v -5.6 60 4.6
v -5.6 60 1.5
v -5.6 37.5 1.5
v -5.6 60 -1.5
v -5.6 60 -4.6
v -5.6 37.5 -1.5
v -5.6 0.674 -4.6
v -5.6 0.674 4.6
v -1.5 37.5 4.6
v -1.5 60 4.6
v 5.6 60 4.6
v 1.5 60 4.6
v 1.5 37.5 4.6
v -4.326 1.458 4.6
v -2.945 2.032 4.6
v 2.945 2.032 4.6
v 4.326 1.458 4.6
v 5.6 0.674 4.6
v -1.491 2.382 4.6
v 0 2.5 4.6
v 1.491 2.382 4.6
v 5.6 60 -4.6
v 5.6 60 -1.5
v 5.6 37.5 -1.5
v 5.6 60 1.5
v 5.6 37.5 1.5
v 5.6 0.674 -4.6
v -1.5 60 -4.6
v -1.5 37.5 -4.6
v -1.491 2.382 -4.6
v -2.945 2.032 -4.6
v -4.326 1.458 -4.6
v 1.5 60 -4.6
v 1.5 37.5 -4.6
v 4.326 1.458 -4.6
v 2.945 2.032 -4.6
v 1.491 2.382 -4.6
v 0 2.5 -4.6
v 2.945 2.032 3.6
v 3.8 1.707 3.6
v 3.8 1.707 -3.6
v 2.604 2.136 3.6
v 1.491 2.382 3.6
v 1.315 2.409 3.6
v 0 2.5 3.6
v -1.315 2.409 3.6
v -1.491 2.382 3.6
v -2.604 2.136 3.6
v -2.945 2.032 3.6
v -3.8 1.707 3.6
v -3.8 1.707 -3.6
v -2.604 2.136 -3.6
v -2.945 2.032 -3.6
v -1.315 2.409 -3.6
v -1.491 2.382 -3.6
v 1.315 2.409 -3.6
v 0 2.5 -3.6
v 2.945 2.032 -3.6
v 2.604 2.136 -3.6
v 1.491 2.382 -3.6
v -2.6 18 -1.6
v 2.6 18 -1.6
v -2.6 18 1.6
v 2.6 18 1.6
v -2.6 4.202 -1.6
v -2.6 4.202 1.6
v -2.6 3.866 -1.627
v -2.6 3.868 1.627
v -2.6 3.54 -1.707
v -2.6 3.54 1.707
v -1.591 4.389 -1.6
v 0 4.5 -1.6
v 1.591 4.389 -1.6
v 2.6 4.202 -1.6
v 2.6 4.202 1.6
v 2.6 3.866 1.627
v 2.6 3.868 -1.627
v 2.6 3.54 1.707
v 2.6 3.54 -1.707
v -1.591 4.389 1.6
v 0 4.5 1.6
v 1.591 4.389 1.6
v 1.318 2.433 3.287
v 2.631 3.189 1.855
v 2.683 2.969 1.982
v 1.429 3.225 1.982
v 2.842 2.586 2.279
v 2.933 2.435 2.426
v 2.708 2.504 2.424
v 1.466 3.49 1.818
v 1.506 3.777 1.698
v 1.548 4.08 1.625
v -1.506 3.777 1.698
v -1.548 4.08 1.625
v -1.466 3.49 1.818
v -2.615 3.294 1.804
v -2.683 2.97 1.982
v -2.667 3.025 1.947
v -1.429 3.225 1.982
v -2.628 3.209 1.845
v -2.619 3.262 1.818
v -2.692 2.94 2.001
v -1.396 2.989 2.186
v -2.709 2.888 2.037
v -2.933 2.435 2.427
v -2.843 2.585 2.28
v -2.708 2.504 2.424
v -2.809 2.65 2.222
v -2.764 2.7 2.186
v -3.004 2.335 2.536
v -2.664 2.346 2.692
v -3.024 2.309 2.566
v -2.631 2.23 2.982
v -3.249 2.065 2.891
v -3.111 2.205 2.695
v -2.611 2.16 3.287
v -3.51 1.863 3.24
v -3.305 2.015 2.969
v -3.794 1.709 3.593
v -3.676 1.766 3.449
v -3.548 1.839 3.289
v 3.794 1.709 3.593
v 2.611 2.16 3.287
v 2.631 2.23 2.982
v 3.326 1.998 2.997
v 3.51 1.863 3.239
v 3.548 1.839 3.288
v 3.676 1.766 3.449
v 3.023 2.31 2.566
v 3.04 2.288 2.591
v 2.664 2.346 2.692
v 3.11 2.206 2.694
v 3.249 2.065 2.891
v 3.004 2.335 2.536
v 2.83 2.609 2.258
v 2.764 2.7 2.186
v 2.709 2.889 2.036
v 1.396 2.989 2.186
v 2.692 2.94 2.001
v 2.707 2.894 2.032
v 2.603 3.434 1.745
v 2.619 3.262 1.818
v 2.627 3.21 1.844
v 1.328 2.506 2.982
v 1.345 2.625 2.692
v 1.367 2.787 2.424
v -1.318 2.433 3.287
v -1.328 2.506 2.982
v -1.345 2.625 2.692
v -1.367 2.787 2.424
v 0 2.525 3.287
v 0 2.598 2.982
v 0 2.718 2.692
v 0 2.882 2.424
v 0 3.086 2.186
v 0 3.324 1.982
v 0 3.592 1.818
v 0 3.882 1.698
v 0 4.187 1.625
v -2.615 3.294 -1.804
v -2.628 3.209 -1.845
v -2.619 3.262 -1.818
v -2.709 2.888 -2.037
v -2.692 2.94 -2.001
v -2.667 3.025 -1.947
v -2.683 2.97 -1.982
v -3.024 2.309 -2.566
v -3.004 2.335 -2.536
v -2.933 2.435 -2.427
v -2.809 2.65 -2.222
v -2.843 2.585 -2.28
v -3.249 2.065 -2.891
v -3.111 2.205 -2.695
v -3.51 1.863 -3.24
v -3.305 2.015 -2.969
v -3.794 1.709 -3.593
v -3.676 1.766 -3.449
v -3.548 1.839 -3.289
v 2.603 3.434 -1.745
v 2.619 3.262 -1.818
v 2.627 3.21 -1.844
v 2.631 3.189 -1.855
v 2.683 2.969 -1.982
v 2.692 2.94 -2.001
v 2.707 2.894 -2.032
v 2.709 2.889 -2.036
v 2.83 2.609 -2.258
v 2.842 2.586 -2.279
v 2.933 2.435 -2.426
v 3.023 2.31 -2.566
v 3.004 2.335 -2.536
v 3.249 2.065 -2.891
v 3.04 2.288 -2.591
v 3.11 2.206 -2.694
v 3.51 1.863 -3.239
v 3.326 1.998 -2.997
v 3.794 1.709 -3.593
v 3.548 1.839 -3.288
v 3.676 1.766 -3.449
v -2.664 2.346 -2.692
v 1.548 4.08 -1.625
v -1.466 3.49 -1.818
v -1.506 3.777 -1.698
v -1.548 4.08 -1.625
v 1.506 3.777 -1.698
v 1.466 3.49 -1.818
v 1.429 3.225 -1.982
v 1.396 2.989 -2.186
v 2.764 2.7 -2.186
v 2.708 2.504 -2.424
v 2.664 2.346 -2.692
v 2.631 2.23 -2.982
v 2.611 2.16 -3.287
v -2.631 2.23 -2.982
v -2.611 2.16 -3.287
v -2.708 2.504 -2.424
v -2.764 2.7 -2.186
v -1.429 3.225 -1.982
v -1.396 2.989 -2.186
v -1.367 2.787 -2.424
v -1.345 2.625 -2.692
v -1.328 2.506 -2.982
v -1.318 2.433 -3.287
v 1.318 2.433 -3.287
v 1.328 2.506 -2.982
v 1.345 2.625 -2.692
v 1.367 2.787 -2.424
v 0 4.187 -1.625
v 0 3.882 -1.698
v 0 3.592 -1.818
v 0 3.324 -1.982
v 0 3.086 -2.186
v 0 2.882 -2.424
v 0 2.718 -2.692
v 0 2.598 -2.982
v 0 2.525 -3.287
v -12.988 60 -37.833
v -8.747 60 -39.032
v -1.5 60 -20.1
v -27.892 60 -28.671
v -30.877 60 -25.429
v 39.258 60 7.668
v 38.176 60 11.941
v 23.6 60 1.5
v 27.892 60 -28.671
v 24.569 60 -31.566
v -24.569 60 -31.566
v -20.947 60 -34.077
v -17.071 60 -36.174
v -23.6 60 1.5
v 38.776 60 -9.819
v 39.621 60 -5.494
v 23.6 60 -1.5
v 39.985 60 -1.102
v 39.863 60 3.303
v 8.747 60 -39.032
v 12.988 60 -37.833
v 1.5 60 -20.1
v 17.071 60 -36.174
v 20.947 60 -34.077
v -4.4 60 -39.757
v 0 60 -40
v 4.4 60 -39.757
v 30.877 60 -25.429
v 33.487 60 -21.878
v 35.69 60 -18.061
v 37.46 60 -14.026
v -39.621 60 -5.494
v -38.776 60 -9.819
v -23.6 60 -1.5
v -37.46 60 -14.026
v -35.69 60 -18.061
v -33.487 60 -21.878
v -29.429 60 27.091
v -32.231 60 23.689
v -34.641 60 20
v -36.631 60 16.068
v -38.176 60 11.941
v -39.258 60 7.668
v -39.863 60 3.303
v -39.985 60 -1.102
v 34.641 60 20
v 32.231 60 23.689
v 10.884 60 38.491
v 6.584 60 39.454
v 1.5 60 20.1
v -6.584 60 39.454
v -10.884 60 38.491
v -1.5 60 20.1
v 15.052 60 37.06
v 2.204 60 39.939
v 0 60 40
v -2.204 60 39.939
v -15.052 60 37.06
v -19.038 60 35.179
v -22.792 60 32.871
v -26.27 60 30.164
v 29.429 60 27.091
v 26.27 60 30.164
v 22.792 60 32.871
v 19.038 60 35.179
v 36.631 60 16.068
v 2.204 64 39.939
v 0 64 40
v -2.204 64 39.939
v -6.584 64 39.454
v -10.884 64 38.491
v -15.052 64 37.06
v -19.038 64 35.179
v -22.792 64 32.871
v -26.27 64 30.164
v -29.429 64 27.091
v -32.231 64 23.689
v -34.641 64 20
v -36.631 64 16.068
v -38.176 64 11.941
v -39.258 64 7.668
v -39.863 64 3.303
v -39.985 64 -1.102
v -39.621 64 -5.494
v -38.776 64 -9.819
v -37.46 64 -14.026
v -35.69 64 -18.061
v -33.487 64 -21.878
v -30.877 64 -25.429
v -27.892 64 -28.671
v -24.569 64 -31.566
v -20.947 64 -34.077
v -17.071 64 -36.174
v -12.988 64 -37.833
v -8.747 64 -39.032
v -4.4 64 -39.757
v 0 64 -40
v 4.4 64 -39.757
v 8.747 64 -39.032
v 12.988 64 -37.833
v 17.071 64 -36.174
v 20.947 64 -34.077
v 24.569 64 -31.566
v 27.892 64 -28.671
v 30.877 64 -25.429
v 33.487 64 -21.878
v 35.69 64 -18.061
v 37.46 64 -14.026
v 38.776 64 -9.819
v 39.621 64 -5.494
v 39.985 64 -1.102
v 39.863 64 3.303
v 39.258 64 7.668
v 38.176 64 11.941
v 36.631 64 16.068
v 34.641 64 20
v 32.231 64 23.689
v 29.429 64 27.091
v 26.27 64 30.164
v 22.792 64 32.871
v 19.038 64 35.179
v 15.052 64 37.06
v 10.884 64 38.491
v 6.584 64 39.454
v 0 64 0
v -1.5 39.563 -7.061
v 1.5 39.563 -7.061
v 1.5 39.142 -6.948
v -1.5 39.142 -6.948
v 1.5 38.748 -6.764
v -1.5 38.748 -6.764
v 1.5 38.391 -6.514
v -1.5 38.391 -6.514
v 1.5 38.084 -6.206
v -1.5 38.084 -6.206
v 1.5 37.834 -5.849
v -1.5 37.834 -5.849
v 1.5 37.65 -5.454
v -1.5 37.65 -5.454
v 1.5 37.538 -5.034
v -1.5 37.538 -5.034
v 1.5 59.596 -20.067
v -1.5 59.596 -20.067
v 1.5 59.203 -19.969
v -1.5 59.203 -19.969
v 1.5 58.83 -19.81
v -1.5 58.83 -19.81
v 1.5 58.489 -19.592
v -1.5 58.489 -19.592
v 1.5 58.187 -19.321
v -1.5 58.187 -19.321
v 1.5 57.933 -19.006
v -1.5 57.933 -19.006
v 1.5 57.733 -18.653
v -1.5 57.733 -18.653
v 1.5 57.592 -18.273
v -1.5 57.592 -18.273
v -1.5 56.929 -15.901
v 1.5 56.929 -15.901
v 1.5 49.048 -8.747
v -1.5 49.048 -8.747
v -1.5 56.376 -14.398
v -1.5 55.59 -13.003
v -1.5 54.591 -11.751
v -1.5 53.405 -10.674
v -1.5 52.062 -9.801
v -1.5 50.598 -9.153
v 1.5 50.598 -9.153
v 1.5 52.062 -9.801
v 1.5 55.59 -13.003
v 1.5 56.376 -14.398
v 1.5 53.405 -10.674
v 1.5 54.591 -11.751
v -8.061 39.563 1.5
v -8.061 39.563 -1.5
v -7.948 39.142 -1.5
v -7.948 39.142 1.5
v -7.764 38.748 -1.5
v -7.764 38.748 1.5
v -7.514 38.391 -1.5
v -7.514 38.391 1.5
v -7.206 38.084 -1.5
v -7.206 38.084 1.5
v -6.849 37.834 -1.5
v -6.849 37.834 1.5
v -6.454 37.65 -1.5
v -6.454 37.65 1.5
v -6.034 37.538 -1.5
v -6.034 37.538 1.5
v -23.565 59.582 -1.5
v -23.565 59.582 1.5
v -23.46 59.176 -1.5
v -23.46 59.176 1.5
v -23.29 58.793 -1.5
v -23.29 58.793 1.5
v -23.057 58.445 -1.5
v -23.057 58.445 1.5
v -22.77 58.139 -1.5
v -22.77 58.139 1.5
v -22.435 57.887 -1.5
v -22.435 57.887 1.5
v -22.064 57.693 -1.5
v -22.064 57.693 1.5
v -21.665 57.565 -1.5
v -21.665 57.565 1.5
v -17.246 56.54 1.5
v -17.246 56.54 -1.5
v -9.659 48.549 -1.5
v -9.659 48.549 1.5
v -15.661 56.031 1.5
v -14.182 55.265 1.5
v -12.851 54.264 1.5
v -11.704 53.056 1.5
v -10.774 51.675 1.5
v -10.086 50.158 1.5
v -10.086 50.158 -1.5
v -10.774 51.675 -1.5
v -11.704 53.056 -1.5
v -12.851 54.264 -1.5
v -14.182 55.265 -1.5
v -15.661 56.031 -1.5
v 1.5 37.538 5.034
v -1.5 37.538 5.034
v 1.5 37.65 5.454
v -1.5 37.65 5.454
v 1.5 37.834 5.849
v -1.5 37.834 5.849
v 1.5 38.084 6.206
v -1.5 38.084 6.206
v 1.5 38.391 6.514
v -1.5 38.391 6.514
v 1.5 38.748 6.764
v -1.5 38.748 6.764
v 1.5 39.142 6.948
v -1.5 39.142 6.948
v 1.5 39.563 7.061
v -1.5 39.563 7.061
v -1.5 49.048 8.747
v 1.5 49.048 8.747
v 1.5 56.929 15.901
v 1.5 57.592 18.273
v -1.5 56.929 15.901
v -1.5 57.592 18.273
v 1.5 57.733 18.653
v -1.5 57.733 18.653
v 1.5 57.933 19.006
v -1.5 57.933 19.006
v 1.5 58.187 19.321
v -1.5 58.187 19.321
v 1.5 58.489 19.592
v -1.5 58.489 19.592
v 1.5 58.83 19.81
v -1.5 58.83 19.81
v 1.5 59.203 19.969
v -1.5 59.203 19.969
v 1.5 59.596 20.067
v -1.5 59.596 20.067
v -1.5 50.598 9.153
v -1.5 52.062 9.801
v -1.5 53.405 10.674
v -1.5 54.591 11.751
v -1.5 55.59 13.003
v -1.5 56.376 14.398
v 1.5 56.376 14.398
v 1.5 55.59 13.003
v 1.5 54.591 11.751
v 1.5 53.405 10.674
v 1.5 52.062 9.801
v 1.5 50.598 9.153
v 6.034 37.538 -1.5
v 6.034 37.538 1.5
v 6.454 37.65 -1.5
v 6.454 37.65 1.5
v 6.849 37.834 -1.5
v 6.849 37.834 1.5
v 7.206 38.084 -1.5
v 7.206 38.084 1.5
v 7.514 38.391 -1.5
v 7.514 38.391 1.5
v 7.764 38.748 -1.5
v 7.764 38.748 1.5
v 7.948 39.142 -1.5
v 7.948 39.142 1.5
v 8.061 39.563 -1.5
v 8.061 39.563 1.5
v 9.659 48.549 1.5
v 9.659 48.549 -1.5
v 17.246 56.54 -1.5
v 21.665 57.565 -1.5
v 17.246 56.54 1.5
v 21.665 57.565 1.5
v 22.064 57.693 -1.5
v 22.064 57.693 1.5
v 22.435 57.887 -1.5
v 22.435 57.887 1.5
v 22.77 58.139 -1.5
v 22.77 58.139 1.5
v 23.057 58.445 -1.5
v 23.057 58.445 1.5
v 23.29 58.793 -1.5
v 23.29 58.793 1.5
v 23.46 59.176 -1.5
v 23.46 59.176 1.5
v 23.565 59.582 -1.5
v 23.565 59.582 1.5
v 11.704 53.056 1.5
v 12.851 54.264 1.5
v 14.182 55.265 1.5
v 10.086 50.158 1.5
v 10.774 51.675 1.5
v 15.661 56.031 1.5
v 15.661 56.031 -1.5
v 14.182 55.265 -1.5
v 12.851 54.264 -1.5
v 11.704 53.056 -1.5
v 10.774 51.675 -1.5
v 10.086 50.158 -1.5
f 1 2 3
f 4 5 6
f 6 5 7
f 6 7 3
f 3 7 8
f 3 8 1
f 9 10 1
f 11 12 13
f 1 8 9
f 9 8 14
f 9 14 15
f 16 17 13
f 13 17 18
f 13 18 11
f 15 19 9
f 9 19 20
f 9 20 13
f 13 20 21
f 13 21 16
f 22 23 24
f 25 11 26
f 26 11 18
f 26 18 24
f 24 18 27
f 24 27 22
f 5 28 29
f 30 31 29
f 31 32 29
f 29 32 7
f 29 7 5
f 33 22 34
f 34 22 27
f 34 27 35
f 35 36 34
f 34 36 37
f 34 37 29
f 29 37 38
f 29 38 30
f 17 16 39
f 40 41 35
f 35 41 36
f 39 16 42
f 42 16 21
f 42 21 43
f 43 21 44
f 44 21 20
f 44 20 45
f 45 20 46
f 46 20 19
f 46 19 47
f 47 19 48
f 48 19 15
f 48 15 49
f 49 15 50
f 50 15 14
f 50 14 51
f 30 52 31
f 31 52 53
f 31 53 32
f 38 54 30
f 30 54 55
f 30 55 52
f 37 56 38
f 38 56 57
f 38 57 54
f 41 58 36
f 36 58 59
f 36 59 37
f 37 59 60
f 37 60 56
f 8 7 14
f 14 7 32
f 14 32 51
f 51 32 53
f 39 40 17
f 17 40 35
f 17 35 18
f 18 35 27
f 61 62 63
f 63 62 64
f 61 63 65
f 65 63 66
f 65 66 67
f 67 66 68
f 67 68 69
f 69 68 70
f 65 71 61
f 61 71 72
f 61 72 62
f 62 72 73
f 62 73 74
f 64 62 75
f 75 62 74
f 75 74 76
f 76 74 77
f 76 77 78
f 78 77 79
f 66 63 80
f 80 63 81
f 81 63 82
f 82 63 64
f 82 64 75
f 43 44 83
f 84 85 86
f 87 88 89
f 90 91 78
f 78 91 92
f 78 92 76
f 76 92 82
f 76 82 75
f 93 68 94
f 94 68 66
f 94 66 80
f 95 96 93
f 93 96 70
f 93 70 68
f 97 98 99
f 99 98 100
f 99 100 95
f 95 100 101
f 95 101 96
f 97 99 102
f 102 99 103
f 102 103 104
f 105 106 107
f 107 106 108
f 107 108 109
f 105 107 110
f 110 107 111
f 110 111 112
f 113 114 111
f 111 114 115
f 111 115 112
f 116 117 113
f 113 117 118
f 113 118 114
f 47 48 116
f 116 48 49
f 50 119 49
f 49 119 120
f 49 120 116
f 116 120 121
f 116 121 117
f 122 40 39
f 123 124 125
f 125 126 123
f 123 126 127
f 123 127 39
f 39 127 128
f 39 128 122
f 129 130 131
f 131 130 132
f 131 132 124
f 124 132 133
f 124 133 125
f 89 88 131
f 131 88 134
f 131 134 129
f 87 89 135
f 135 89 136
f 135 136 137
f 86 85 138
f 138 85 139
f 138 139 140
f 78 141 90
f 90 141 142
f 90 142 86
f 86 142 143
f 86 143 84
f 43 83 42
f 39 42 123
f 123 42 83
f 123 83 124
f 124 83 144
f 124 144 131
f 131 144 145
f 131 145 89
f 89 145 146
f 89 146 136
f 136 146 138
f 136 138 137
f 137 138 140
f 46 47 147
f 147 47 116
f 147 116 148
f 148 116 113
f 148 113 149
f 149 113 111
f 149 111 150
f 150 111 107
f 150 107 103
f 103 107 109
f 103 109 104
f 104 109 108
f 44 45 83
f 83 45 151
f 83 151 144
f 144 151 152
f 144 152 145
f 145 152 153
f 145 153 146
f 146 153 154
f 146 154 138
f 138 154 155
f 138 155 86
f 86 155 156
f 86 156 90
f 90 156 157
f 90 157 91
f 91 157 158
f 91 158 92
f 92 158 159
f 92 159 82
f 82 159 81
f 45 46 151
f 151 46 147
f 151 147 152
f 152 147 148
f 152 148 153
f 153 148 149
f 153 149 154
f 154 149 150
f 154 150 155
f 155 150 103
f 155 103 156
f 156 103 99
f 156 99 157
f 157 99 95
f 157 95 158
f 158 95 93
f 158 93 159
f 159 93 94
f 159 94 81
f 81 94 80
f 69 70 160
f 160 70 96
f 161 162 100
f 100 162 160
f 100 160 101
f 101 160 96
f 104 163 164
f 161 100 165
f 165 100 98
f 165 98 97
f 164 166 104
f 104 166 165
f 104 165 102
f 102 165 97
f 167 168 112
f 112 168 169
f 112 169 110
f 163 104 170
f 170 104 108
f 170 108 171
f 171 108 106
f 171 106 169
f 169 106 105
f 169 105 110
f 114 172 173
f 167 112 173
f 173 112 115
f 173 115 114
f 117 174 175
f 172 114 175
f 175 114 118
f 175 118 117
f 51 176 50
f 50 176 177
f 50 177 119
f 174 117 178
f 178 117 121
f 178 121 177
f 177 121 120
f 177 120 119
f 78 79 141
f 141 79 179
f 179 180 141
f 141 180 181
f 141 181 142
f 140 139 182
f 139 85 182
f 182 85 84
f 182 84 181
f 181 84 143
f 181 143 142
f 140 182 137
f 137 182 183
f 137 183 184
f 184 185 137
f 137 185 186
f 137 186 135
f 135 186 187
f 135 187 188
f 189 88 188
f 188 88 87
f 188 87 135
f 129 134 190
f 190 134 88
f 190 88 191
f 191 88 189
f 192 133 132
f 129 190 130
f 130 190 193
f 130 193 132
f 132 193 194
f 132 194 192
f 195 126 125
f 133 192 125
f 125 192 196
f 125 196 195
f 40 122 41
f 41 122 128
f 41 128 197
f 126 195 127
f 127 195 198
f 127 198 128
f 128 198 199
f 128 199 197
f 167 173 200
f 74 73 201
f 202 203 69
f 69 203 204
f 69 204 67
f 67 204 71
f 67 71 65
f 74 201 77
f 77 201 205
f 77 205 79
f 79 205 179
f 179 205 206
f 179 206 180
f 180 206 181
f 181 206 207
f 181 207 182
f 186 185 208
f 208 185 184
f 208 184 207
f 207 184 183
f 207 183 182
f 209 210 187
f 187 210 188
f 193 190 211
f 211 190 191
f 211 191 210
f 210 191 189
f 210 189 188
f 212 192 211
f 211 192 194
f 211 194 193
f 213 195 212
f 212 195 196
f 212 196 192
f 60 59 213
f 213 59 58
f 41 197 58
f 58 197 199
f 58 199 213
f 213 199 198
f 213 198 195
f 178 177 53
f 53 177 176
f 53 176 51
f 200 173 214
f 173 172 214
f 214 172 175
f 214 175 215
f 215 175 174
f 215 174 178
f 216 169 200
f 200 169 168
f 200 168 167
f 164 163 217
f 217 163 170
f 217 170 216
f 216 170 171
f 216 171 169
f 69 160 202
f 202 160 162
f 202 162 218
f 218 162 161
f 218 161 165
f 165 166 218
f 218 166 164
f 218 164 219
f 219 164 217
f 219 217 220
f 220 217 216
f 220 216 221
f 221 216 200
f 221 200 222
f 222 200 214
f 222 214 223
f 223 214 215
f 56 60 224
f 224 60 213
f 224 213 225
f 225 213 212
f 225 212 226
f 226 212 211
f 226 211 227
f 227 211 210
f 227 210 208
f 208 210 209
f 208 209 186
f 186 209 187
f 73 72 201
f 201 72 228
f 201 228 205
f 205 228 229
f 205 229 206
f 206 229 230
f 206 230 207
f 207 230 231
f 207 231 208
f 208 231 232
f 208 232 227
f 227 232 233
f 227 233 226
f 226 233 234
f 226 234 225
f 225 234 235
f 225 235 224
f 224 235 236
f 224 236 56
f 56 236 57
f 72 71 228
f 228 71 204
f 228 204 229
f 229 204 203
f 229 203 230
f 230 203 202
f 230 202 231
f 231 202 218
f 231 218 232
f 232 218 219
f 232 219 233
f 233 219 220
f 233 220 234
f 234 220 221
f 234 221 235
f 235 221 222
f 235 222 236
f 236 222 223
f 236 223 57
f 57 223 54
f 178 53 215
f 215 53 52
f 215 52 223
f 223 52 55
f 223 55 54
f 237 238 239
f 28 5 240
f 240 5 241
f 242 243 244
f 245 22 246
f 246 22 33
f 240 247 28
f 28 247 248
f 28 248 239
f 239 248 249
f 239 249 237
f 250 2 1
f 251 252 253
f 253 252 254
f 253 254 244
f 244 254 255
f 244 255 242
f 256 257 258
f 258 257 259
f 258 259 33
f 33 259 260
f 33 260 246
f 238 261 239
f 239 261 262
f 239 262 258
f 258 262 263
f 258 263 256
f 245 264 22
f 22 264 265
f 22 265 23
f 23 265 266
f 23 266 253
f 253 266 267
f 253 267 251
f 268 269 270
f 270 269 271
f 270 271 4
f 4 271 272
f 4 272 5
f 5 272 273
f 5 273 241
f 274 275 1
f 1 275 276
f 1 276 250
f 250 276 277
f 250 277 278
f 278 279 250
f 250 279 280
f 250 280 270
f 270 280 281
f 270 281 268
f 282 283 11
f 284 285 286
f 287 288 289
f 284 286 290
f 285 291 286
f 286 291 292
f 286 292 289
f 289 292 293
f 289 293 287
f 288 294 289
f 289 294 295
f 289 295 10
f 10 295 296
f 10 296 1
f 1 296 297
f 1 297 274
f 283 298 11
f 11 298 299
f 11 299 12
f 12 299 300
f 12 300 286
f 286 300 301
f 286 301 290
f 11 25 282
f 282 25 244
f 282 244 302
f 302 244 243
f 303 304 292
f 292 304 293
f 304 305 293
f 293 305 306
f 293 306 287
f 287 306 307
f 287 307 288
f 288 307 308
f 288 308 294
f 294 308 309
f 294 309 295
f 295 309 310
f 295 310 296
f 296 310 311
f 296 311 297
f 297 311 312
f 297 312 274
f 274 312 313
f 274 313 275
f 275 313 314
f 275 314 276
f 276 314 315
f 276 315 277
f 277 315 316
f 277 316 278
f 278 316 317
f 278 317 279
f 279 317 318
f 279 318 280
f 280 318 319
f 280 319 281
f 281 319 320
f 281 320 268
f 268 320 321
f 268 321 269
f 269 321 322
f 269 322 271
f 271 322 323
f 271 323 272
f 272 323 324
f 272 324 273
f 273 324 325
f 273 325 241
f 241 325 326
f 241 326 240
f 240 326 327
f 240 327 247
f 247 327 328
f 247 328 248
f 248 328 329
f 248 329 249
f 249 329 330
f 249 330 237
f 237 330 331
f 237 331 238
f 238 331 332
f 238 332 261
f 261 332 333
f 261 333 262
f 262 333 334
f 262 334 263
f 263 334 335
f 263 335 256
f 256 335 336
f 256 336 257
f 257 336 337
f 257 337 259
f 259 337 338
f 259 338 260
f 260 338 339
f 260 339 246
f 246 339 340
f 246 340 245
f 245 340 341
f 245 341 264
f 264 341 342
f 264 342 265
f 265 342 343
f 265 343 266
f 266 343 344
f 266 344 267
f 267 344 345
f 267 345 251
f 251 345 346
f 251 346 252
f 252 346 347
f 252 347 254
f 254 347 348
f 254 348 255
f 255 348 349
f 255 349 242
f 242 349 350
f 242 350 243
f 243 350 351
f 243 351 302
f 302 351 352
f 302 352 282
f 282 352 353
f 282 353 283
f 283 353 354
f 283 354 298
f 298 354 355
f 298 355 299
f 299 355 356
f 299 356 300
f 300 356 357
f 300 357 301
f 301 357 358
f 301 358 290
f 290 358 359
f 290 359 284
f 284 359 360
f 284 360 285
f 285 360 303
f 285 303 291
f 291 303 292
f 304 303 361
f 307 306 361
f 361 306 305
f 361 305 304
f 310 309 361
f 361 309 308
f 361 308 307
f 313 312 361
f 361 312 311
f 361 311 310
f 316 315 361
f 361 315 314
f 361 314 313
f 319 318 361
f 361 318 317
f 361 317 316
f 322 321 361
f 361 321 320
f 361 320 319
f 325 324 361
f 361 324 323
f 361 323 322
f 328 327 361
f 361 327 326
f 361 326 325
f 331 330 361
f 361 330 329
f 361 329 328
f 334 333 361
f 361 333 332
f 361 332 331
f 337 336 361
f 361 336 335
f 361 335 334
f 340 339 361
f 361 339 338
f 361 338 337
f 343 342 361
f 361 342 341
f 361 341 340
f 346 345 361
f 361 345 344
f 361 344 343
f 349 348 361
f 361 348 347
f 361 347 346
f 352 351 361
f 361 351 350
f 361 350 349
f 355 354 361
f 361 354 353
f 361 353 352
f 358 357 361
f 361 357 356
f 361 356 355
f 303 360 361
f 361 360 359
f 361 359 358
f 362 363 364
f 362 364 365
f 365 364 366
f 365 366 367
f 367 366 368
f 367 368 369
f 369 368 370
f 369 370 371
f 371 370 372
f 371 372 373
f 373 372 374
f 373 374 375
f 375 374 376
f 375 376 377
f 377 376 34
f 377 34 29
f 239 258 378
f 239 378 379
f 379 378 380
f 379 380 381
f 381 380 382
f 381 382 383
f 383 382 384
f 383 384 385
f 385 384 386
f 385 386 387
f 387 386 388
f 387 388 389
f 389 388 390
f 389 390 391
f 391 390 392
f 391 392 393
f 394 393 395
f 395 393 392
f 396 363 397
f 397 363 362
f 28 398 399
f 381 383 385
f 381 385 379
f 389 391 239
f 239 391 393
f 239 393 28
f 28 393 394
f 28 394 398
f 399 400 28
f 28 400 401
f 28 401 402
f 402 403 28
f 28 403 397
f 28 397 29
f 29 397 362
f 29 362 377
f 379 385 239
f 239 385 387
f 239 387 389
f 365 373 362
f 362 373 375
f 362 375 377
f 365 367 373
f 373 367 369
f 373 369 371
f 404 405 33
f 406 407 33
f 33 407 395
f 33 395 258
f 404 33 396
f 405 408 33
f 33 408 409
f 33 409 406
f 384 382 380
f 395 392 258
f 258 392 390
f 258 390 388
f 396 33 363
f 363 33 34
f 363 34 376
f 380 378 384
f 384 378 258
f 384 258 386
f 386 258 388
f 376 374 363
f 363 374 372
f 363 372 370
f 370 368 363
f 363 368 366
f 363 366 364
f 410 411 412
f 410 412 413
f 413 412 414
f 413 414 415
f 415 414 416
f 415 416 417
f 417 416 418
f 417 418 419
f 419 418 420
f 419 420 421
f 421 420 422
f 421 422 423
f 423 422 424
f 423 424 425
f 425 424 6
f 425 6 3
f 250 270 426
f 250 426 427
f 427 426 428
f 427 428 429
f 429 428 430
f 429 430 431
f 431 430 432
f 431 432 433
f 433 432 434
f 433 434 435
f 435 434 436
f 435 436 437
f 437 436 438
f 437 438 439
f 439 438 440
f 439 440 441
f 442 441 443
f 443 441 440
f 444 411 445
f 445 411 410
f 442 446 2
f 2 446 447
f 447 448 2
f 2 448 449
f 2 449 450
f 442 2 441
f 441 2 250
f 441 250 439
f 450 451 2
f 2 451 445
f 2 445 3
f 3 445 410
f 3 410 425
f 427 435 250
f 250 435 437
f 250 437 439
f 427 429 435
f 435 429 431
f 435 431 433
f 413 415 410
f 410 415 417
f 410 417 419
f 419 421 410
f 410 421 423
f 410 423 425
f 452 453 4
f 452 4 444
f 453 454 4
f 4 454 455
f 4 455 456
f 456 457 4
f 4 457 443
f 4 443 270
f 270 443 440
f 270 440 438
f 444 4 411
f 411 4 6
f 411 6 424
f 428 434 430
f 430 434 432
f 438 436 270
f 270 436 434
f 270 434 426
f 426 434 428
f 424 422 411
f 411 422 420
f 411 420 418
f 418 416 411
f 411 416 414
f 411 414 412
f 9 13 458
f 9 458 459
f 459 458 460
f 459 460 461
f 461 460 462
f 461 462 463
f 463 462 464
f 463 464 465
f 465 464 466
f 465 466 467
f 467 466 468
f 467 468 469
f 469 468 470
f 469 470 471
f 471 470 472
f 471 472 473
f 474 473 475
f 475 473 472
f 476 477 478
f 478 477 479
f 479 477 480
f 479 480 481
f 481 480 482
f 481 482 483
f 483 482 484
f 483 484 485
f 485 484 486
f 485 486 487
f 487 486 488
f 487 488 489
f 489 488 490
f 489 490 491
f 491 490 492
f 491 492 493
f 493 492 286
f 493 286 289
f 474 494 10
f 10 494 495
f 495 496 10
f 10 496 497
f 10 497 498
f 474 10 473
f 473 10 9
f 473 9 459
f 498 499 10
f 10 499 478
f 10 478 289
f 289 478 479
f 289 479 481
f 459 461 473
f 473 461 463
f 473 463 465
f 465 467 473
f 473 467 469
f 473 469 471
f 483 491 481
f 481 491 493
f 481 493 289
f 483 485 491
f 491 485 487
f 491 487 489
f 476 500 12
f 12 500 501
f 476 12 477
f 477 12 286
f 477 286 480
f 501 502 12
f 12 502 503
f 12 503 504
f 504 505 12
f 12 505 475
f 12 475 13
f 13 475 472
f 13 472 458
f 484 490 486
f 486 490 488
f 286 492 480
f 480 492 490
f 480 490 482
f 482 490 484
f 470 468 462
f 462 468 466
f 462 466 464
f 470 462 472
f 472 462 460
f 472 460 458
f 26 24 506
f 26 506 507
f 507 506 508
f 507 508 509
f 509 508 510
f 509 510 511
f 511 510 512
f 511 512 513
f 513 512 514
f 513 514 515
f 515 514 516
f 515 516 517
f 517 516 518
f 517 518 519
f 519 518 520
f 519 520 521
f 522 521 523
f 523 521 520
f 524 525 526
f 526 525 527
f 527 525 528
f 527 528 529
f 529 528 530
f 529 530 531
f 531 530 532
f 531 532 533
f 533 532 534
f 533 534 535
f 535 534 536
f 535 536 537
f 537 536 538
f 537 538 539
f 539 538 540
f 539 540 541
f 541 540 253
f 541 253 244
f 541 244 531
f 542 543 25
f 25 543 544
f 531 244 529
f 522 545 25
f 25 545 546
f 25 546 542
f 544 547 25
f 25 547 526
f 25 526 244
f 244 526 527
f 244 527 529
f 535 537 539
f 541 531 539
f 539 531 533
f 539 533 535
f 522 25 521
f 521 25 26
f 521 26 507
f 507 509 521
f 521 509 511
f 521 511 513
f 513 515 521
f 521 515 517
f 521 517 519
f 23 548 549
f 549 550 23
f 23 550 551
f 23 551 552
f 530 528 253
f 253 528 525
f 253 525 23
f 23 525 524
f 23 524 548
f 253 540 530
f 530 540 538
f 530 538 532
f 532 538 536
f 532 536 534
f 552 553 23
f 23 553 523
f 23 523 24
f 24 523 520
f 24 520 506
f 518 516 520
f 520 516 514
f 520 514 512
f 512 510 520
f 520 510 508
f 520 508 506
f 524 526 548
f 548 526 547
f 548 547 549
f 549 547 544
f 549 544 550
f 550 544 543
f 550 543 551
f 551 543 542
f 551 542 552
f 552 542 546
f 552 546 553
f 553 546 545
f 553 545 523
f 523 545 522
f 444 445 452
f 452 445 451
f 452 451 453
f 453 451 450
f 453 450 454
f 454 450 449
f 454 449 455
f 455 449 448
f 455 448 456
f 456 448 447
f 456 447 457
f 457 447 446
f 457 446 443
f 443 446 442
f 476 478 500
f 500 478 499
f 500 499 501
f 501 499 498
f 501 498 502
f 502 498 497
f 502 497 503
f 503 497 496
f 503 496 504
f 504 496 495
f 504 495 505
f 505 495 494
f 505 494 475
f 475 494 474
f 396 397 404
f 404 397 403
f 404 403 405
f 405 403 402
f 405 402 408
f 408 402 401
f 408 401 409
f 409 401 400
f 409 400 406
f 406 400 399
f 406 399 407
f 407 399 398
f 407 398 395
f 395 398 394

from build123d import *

# Parameters (mm, degrees)
SKETCH_1_W          = 11.2
SKETCH_1_H          = 9.2
EXTRUDE_1_DEPTH     = 60
SKETCH_1_12_W       = 5.2
SKETCH_1_12_H       = 3.2
CUT_EXTRUDE_1_DEPTH = 18
SKETCH_2_R          = 9.5
CUT_EXTRUDE_2_DEPTH = 61.959002617
FILLET_1_R          = 2
SKETCH_3_R          = 40
EXTRUDE_2_DEPTH     = 4
EXTRUDE_3_DEPTH     = 1.5
EXTRUDE_4_DEPTH     = 1.5
FILLET_2_R          = 10


with BuildPart() as part:
    # 草图1 → 凸台-拉伸1 (new body)
    with BuildSketch(Plane(origin=(0, 0, 0), x_dir=(1, 0, 0), z_dir=(0, 1, 0))):
        Rectangle(SKETCH_1_W, SKETCH_1_H)
    extrude(amount=EXTRUDE_1_DEPTH)

    # 草图1<12> → 切除-拉伸1 (cut)
    with BuildSketch(Plane(origin=(0, 0, 0), x_dir=(1, 0, 0), z_dir=(0, 1, 0))):
        Rectangle(SKETCH_1_12_W, SKETCH_1_12_H)
    extrude(amount=CUT_EXTRUDE_1_DEPTH, mode=Mode.SUBTRACT)

    # 草图2 → 切除-拉伸2 (cut, through all)
    with BuildSketch(Plane(origin=(0, 0, -4.6), x_dir=(-1, 0, 0), z_dir=(0, 0, -1))):
        with Locations((0, -7)):
            Circle(SKETCH_2_R)
    extrude(amount=-CUT_EXTRUDE_2_DEPTH, mode=Mode.SUBTRACT)

    # 圆角1
    fillet_1_edges = [part.edges().sort_by_distance(p)[0] for p in [
        (0, 2.5, -1.6),
        (-2.6, 2.137286249, 0),
        (2.6, 2.137286249, 0),
        (0, 2.5, 1.6),
    ]]
    fillet(fillet_1_edges, radius=FILLET_1_R)

    # 草图3 → 凸台-拉伸2 (add)
    with BuildSketch(Plane(origin=(0, 60, 0), x_dir=(1, 0, 0), z_dir=(0, 1, 0))):
        Circle(SKETCH_3_R)
    extrude(amount=EXTRUDE_2_DEPTH)

    # 草图4 → 凸台-拉伸3 (add, symmetric)
    with BuildSketch(Plane.ZY):
        with BuildLine():
            ThreePointArc((-20.1, 60), (-19.591568767, 58.488823688), (-18.273076923, 57.592310764))
            Line((-18.273076923, 57.592310764), (-9.847432928, 55.236896099))
            Line((-9.847432928, 55.236896099), (-7.061421083, 39.5625))
            ThreePointArc((-7.061421083, 39.5625), (-6.205654072, 38.083786285), (-4.6, 37.5))
            Line((-4.6, 37.5), (-4.6, 60))
            Line((-4.6, 60), (-20.1, 60))
        make_face()
    extrude_3 = extrude(amount=EXTRUDE_3_DEPTH, both=True)

    # 草图5 → 凸台-拉伸4 (add, symmetric)
    with BuildSketch(Plane.XY):
        with BuildLine():
            ThreePointArc((-23.6, 60), (-23.057203403, 58.444572458), (-21.664516129, 57.564569537))
            Line((-21.664516129, 57.564569537), (-10.81412887, 55.04952396))
            Line((-10.81412887, 55.04952396), (-8.061421083, 39.5625))
            ThreePointArc((-8.061421083, 39.5625), (-7.205654072, 38.083786285), (-5.6, 37.5))
            Line((-5.6, 37.5), (-5.6, 60))
            Line((-5.6, 60), (-23.6, 60))
        make_face()
    extrude_4 = extrude(amount=EXTRUDE_4_DEPTH, both=True)

    # 镜向2: 凸台-拉伸3 across plane
    add(extrude_3.mirror(Plane.XY))

    # 镜向3: 凸台-拉伸4 across plane
    add(extrude_4.mirror(Plane(origin=(0, 0, 0), x_dir=(0, 0, 1), z_dir=(1, 0, 0))))

    # 圆角2
    fillet_2_edges = [part.edges().sort_by_distance(p)[0] for p in [
        (0, 55.236896099, -9.847432928),
        (0, 55.236896099, 9.847432928),
        (10.81412887, 55.04952396, 0),
        (-10.81412887, 55.04952396, 0),
    ]]
    fillet(fillet_2_edges, radius=FILLET_2_R)


solid = part.part
